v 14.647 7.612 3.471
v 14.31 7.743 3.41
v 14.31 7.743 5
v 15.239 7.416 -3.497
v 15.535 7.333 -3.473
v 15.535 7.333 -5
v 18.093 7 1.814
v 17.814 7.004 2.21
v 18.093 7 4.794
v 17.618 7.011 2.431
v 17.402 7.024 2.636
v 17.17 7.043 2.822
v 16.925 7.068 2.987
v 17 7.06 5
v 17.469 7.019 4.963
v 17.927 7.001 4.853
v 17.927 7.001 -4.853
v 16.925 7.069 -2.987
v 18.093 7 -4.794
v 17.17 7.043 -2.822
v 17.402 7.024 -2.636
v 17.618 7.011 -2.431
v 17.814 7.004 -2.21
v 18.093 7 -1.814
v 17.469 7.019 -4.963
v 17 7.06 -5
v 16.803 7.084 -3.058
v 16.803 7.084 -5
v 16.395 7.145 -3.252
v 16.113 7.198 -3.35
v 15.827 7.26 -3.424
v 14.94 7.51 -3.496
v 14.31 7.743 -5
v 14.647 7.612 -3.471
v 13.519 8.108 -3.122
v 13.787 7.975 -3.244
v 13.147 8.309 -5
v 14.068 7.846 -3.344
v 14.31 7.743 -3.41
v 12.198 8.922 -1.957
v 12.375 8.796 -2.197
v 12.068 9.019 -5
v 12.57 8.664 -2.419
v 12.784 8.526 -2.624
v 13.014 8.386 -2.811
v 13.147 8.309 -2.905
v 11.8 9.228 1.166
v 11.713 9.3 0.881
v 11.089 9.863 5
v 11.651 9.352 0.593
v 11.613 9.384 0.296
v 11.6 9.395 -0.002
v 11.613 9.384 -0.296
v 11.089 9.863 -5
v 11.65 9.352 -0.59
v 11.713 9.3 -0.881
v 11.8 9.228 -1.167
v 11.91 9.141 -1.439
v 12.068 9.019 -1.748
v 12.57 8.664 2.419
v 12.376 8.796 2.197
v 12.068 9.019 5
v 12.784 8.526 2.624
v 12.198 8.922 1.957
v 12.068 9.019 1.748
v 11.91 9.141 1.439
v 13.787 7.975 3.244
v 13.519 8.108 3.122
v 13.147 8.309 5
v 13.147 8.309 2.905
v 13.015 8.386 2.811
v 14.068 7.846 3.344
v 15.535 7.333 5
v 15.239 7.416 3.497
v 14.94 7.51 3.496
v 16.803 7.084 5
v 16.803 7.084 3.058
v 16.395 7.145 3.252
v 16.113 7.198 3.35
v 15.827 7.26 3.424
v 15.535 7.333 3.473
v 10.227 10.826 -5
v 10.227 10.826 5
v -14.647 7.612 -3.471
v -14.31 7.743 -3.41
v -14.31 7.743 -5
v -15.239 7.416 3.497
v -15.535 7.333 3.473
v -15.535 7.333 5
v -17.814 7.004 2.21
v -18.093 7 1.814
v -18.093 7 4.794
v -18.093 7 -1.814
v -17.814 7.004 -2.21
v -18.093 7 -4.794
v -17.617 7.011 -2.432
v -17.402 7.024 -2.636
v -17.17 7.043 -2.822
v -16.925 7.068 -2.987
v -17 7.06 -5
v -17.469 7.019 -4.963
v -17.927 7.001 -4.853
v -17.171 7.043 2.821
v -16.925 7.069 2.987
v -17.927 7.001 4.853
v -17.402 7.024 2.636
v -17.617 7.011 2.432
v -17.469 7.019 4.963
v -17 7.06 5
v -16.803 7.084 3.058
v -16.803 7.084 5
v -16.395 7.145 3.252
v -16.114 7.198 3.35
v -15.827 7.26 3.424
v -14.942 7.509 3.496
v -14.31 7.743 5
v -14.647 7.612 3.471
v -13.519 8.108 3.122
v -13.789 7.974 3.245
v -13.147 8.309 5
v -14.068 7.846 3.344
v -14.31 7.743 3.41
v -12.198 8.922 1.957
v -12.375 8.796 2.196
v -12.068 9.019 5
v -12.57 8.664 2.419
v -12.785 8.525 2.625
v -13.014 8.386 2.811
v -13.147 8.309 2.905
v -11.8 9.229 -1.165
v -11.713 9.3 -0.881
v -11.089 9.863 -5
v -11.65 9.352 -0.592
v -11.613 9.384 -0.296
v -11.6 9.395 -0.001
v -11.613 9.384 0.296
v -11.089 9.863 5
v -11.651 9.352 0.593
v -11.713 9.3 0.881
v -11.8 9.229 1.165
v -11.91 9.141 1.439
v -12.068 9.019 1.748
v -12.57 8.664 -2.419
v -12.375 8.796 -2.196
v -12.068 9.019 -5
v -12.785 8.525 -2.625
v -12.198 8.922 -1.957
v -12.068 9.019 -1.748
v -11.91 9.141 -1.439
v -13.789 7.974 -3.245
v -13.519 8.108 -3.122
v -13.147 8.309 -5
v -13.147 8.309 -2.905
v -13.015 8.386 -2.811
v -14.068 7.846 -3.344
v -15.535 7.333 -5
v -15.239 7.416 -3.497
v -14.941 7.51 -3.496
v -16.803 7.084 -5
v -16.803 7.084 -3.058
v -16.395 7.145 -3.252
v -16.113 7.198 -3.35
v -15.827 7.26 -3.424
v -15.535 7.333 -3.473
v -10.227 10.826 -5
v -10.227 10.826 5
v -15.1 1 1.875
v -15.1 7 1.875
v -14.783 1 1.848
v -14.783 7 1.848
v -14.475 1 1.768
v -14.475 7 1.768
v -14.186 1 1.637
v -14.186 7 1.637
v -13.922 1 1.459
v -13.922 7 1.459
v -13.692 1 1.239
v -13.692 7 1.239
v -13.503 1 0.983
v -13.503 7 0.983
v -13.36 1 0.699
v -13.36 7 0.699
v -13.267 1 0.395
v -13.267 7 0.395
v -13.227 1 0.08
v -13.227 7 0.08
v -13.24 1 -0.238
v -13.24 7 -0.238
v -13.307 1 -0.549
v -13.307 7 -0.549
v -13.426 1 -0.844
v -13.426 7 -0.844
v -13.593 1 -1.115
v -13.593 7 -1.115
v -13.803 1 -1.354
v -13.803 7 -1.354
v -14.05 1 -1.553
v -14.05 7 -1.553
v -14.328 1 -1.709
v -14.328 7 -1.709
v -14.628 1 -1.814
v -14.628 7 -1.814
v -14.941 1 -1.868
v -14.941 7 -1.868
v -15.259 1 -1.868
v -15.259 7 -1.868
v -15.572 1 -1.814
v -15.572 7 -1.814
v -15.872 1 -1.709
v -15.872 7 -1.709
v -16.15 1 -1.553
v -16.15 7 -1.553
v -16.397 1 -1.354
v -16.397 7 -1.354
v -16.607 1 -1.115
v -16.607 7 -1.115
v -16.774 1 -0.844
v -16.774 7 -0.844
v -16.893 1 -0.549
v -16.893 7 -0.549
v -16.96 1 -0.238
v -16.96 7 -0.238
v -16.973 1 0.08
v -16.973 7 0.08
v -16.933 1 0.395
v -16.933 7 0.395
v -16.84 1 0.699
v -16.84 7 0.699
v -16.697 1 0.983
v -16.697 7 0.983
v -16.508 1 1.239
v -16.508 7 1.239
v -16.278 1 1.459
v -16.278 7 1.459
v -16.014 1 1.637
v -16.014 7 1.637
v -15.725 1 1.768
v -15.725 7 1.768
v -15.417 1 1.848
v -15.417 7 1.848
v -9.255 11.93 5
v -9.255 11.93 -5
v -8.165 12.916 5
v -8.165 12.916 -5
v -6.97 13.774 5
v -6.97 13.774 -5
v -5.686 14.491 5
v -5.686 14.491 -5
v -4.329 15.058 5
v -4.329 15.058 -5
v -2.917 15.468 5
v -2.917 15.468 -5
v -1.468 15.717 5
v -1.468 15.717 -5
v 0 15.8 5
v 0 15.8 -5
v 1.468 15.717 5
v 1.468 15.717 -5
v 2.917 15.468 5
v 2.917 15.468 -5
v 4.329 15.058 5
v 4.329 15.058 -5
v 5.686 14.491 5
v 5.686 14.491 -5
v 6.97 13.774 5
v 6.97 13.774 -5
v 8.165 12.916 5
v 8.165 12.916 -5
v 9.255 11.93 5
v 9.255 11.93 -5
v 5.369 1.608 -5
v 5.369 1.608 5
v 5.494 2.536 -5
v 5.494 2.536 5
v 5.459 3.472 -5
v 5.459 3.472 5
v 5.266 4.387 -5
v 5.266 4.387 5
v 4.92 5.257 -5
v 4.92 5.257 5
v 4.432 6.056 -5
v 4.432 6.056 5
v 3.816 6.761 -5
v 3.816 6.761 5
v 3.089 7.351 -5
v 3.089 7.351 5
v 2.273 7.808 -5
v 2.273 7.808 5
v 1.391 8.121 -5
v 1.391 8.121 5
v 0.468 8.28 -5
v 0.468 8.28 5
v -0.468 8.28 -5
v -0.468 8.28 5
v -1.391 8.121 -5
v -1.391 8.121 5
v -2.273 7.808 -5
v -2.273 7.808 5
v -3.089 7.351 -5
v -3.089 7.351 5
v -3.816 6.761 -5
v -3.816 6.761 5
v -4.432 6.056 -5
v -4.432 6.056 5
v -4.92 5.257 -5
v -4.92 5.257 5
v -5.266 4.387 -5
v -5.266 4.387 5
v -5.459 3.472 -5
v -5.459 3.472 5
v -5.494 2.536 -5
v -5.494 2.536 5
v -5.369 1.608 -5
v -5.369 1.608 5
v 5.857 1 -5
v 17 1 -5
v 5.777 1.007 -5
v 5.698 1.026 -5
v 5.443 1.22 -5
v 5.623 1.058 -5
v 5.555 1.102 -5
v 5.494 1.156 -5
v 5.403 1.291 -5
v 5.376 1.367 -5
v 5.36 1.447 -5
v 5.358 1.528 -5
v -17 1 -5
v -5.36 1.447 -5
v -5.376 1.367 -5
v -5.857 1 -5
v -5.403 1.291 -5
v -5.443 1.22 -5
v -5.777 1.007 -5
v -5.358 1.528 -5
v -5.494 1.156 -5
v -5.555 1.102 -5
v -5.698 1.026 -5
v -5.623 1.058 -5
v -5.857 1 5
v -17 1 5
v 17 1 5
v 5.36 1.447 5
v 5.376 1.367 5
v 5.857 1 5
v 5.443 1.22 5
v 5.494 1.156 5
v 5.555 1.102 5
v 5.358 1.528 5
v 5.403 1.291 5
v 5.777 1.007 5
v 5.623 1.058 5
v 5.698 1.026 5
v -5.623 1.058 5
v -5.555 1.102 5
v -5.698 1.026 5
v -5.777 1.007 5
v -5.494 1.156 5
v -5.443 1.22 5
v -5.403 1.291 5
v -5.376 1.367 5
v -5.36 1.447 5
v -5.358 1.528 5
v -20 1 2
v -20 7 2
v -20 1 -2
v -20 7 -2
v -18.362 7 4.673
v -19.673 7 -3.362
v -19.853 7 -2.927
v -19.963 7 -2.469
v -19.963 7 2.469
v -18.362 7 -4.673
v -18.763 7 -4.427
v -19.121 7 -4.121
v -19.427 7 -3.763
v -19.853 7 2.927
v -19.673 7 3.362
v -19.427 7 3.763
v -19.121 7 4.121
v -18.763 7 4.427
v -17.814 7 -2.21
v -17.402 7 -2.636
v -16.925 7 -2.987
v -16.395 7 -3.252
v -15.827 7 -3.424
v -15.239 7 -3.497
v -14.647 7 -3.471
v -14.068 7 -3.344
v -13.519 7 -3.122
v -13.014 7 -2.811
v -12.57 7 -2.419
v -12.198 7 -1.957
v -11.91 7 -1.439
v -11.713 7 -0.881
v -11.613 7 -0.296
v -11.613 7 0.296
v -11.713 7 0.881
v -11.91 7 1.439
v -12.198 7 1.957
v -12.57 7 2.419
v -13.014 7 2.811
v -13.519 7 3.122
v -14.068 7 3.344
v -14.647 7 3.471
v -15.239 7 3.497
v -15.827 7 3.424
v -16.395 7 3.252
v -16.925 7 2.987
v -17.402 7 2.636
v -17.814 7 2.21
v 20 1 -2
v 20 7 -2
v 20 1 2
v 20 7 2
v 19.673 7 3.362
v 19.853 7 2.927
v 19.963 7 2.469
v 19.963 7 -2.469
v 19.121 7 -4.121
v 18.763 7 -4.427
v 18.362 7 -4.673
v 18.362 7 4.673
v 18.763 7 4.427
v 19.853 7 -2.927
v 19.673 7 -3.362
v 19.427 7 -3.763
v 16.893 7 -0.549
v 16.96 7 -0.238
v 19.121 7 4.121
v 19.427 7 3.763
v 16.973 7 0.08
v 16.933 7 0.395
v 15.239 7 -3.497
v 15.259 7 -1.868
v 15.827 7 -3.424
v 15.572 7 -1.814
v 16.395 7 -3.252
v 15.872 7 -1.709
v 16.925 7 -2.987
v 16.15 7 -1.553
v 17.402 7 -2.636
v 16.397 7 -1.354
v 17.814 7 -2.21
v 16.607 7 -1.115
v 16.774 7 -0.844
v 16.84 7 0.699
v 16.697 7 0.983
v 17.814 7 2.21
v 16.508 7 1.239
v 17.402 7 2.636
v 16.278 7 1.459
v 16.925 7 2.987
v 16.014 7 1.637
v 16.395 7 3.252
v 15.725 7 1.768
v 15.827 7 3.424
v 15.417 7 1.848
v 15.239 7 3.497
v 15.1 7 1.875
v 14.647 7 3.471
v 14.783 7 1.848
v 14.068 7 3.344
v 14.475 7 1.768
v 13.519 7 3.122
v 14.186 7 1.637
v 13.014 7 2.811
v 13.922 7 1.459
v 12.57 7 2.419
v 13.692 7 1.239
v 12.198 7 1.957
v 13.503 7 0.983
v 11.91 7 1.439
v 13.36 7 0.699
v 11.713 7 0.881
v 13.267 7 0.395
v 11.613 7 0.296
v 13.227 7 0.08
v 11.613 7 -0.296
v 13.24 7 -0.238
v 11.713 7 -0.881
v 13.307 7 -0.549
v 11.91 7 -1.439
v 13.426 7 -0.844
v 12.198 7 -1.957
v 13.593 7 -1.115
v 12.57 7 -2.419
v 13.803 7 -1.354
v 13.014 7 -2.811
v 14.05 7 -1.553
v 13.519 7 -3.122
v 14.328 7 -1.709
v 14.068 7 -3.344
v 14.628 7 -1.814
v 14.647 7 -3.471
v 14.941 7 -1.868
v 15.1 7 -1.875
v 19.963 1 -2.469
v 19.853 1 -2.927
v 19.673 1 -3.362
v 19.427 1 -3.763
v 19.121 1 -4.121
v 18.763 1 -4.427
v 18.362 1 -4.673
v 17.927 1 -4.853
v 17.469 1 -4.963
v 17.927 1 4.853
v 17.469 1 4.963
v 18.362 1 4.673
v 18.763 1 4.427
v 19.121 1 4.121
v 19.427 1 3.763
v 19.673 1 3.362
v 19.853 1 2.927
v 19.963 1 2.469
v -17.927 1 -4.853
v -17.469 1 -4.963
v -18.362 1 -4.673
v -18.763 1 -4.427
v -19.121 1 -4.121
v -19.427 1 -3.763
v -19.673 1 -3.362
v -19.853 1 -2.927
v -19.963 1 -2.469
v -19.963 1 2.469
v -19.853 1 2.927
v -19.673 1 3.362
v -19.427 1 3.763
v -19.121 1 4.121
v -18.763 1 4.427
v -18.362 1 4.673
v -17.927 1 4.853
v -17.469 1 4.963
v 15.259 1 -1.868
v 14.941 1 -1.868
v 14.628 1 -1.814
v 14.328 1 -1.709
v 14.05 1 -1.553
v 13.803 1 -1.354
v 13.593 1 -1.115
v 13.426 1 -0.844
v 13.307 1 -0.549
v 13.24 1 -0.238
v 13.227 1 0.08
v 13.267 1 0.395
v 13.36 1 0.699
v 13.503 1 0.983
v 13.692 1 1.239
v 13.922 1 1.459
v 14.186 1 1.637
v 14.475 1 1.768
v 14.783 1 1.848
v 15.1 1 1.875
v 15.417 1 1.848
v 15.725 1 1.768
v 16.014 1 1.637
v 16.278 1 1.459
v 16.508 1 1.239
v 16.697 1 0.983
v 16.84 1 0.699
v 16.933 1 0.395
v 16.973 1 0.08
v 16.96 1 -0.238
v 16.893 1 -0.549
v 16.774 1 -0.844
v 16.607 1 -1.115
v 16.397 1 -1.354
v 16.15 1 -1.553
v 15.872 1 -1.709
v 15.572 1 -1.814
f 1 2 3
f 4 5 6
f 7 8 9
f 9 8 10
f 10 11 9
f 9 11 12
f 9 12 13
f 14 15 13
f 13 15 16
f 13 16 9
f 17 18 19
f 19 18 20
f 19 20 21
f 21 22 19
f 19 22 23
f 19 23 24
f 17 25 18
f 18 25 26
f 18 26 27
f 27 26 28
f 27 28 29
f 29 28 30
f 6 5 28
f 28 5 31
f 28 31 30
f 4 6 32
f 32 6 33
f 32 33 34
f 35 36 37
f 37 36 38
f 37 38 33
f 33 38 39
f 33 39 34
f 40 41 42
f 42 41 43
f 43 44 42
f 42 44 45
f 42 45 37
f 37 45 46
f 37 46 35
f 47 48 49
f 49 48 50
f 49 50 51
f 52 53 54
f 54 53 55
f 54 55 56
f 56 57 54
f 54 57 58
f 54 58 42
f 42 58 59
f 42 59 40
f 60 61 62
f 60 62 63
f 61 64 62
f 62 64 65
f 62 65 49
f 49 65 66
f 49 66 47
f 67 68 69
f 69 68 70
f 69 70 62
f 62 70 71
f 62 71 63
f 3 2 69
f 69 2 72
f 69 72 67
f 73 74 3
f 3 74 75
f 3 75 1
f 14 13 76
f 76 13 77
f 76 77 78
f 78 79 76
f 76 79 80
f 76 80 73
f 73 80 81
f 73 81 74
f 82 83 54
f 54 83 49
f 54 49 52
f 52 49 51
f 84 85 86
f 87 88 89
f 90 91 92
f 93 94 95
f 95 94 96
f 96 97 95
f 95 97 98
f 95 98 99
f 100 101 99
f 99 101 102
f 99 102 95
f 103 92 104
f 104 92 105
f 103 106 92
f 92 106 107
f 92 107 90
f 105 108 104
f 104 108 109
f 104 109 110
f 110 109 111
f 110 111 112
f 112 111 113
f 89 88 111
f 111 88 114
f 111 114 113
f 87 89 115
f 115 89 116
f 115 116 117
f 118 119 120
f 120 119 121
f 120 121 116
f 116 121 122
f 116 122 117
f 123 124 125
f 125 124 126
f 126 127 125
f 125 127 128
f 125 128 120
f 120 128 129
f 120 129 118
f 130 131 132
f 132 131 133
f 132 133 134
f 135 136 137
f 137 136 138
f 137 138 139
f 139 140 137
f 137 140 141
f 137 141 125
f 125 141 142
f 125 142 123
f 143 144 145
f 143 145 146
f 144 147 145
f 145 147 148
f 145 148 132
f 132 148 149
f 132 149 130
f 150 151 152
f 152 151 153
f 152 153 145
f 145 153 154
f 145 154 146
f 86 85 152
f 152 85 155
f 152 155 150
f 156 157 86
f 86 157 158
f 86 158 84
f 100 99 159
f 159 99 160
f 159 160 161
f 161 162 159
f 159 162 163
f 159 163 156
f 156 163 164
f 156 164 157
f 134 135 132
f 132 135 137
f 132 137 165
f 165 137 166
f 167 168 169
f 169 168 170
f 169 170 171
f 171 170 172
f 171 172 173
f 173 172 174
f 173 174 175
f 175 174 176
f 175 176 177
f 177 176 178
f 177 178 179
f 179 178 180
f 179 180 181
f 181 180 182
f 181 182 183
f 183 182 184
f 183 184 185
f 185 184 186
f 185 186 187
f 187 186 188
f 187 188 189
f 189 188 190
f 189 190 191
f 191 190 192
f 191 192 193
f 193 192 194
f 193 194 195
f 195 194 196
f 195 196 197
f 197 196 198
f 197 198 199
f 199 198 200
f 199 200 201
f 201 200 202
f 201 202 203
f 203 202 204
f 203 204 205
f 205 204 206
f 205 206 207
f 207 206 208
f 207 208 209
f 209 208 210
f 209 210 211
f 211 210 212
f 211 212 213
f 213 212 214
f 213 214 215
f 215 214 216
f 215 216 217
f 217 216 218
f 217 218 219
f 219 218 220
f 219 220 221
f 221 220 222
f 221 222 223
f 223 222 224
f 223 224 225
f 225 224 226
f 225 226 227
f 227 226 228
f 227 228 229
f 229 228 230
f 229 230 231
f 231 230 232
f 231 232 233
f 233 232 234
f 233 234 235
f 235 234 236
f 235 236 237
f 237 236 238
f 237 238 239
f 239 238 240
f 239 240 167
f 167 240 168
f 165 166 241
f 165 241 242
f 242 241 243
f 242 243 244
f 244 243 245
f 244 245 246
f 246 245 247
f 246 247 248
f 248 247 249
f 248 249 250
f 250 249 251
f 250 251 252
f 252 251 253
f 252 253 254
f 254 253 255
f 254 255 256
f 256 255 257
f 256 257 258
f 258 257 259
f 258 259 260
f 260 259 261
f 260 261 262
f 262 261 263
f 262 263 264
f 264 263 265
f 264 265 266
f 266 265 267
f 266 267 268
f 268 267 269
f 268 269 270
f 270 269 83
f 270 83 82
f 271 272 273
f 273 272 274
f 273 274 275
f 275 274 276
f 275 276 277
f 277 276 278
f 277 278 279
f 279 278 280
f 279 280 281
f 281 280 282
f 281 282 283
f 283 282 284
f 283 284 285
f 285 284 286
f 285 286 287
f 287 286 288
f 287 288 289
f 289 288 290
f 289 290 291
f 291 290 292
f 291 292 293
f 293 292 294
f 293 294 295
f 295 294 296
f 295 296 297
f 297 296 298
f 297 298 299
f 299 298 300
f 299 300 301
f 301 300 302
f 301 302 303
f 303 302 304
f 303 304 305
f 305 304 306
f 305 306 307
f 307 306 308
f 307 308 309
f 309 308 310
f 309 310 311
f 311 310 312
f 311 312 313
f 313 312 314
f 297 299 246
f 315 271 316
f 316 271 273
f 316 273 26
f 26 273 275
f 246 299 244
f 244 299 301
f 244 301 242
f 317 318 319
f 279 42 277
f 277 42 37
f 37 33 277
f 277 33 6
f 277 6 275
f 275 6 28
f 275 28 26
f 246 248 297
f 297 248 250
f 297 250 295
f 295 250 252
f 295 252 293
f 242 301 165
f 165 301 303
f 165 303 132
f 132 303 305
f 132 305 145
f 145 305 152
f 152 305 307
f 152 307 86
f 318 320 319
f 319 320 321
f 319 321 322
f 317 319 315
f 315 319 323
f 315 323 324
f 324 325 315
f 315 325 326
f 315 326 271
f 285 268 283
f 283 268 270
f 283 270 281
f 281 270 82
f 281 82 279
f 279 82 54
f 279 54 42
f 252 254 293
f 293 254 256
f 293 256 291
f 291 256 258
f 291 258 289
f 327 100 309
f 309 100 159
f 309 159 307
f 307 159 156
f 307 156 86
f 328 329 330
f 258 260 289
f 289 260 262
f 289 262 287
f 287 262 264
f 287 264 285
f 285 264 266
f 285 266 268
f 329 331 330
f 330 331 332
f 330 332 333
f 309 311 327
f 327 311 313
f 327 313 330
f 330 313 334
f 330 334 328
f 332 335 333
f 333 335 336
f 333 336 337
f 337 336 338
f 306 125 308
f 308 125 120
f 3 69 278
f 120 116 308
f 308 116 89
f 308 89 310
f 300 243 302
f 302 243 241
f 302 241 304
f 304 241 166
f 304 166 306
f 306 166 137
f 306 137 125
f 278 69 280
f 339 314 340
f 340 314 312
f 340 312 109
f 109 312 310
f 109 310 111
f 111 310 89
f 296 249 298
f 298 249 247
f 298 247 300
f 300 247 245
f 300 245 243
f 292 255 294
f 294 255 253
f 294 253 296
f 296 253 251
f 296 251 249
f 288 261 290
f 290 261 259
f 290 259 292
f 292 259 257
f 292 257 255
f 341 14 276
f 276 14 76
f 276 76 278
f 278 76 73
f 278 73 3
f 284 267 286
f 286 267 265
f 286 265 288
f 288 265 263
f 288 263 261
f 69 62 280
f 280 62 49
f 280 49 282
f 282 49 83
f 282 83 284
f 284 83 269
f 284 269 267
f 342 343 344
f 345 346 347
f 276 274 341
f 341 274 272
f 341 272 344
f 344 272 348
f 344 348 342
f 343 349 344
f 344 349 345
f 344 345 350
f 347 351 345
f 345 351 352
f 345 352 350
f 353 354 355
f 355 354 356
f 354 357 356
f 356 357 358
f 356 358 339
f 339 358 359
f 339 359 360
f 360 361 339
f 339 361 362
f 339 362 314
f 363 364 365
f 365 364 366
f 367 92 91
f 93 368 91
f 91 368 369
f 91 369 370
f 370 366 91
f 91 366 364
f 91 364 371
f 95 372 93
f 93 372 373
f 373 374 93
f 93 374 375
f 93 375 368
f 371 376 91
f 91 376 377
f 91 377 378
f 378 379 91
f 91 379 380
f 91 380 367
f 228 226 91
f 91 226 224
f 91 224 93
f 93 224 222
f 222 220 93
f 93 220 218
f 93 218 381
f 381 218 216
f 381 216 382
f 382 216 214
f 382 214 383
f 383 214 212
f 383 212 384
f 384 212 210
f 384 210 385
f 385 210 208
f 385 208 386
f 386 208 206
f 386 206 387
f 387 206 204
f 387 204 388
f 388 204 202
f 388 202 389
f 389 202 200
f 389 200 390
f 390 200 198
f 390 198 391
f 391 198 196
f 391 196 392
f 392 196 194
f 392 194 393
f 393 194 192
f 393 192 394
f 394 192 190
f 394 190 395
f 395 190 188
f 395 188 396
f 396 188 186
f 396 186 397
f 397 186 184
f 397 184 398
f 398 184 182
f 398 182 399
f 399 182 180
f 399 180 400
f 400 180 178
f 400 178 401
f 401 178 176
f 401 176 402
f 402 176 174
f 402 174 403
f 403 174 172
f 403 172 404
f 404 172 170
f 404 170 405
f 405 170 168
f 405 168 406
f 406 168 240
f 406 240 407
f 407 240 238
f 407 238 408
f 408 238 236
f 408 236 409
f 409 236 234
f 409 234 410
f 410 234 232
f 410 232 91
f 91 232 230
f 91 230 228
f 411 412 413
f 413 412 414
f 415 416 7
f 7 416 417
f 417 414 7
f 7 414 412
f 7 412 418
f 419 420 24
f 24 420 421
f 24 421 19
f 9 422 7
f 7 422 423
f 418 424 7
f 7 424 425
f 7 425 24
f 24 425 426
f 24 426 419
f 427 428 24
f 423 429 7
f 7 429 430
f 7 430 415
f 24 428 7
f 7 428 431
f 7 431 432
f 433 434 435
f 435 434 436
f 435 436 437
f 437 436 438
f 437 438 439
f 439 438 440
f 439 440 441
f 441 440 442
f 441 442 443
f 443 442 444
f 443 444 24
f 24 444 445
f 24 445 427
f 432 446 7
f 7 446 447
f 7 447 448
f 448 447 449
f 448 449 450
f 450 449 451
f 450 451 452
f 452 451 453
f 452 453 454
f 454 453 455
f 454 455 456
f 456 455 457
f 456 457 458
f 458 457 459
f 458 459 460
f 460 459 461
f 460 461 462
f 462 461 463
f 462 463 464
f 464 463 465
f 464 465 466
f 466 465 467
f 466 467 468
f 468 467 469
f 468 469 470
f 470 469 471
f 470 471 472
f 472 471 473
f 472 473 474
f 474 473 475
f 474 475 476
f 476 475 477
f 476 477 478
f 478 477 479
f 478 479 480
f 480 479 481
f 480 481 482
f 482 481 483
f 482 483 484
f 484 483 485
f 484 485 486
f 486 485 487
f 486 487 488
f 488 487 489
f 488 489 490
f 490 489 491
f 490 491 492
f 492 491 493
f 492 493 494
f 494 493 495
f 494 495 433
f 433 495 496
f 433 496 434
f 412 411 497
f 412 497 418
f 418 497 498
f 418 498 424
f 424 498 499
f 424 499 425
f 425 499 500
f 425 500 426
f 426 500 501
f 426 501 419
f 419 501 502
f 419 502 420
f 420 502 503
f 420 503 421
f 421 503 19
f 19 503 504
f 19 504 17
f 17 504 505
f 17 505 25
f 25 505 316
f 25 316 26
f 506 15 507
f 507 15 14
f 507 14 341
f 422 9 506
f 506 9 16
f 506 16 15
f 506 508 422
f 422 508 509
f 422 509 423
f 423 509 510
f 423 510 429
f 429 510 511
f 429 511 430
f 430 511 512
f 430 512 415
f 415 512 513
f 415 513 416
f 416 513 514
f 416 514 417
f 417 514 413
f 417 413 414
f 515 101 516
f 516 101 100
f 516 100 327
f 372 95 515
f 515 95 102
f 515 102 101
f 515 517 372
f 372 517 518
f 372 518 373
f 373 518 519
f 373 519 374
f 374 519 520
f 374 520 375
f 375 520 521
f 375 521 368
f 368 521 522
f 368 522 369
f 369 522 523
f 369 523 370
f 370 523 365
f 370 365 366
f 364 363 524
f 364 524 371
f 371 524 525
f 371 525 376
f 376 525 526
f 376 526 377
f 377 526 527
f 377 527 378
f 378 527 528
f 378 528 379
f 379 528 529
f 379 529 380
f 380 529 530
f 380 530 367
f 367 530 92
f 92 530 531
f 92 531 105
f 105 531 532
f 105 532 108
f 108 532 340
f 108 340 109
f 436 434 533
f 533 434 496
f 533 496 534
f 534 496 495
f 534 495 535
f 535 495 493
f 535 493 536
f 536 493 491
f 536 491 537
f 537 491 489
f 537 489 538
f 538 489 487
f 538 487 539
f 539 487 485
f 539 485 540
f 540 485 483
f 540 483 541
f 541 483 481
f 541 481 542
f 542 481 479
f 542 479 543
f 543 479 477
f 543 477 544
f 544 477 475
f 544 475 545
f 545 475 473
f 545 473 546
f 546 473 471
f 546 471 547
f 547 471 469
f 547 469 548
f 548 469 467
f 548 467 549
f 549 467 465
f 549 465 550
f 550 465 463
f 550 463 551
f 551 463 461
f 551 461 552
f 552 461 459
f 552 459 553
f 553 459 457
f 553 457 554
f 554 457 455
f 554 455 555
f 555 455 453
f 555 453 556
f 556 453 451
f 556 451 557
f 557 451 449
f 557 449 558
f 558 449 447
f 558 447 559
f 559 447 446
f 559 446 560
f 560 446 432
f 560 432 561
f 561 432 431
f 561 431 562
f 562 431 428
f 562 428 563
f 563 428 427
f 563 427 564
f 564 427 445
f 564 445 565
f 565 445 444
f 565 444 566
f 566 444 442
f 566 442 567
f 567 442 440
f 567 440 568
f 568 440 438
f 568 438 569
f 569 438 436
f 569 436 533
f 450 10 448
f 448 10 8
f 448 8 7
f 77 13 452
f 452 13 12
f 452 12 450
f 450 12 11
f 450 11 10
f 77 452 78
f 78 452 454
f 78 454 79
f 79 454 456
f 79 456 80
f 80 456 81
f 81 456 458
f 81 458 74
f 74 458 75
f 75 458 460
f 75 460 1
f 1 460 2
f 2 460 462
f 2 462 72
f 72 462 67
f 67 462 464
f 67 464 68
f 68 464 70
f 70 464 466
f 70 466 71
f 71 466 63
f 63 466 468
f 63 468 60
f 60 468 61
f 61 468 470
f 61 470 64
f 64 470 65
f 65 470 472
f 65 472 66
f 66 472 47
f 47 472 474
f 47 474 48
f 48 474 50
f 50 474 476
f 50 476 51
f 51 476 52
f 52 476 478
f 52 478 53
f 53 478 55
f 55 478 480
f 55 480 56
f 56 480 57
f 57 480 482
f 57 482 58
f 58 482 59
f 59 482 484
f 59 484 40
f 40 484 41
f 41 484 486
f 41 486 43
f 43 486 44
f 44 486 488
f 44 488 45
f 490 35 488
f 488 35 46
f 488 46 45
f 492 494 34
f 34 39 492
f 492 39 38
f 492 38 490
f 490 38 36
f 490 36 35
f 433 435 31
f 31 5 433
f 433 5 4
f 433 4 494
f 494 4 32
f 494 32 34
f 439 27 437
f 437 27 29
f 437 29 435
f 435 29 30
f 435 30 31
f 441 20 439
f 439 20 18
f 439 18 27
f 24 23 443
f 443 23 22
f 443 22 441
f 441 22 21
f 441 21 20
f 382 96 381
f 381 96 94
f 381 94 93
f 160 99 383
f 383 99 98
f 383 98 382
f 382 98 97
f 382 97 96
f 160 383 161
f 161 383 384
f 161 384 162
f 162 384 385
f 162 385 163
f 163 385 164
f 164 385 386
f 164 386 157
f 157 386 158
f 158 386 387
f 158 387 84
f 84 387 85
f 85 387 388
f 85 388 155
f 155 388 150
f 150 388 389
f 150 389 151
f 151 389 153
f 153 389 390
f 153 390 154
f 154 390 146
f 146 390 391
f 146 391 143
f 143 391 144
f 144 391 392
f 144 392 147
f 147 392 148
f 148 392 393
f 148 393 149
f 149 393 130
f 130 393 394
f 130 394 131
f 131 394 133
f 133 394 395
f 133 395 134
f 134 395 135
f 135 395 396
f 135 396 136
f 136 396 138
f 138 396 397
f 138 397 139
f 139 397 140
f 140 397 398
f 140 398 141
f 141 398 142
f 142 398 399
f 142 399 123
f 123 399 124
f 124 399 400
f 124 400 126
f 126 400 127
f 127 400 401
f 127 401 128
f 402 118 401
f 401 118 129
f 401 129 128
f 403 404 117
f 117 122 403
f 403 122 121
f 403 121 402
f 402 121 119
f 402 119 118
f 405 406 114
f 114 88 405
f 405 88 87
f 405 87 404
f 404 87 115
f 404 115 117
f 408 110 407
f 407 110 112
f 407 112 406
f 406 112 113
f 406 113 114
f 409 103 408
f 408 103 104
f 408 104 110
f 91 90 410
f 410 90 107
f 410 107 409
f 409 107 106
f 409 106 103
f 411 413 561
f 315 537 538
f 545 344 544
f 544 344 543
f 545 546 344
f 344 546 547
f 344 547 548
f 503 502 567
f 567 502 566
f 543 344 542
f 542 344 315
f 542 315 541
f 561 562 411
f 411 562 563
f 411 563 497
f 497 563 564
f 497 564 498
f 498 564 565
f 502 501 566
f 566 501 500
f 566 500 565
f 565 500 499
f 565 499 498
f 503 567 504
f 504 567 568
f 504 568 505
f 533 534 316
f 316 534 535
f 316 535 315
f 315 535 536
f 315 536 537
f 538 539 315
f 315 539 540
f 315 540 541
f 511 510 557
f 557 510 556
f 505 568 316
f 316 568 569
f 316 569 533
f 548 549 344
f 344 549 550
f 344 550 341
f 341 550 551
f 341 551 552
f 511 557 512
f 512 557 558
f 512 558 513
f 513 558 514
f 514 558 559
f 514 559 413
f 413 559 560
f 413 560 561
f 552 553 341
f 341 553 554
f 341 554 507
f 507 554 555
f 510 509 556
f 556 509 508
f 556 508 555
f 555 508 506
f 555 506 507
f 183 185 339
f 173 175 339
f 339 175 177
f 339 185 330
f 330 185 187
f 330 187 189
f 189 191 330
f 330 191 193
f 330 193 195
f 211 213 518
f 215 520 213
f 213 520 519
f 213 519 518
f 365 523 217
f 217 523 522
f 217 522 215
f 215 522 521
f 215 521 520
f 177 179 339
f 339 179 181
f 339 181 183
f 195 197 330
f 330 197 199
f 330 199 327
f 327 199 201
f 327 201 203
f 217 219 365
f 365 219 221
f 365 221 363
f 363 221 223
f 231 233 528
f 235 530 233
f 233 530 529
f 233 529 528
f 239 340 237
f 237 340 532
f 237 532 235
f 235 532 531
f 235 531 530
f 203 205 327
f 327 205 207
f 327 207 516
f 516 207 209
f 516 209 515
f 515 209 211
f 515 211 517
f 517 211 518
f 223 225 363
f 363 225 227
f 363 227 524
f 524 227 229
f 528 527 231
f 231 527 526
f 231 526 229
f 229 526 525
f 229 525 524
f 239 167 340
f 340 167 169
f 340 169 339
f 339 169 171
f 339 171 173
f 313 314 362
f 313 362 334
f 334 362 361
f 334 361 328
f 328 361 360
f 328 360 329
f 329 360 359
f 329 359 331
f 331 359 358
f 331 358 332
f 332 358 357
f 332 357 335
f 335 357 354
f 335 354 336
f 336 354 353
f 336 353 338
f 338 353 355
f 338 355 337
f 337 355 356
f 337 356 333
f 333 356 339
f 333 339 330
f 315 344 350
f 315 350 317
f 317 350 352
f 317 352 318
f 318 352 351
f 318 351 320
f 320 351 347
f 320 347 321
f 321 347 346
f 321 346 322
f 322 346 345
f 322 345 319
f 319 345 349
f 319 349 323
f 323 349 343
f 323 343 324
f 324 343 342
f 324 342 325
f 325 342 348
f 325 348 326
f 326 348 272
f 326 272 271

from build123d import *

# Parameters (mm, degrees)
BOSS_EXTRUDE1_START      = -1
SKETCH1_W                = 40
SKETCH1_H                = 10
BOSS_EXTRUDE1_DEPTH      = 5
BOSS_EXTRUDE2_DEPTH      = 5
BOSS_EXTRUDE2_DEPTH_BACK = 5
SKETCH3_W                = 10
SKETCH3_H                = 10
BOSS_EXTRUDE3_DEPTH      = 7
FILLET1_R                = 3
FILLET2_R                = 3
FILLET4_R                = 10
CUT_EXTRUDE1_DEPTH       = 26.973833083
CUT_EXTRUDE1_DEPTH_BACK  = 26.973833083
SKETCH4_R                = 1.875
CUT_EXTRUDE2_START       = 7
SKETCH5_R                = 3.5
CUT_EXTRUDE2_DEPTH       = 10
SKETCH9_W                = 47.094451366
SKETCH9_H                = 23.336565295
CUT_EXTRUDE5_DEPTH       = 1
FILLET5_R                = 0.5
SKETCH7_W                = 51.703075982
SKETCH7_H                = 23.04476915
CUT_EXTRUDE4_DEPTH       = 26.973833083


with BuildPart() as part:
    # Sketch1 → Boss-Extrude1 (new body)
    with BuildSketch(Plane(origin=(0, 0, 0), x_dir=(1, 0, 0), z_dir=(0, 1, 0)).offset(BOSS_EXTRUDE1_START)):
        Rectangle(SKETCH1_W, SKETCH1_H)
    extrude(amount=-BOSS_EXTRUDE1_DEPTH)

    # Fillet2
    fillet2_edges = [part.edges().sort_by_distance(p)[0] for p in [
        (-20, -3.5, 5),
        (-20, -3.5, -5),
        (20, -3.5, 5),
        (20, -3.5, -5),
    ]]
    fillet(fillet2_edges, radius=FILLET2_R)


with BuildPart() as body_2:
    # Sketch2 → Boss-Extrude2 (new, two sides: drawn at the far end of the back side and taken through both)
    with BuildSketch(Plane.XY.offset(-BOSS_EXTRUDE2_DEPTH_BACK)):
        with BuildLine():
            Line((-12.694880858, 0), (-4.733920151, 0))
            ThreePointArc((-4.733920151, 0), (0, 8.3), (4.733920151, 0))
            Line((4.733920151, 0), (12.694880858, 0))
            ThreePointArc((12.694880858, 0), (0, 15.8), (-12.694880858, 0))
        make_face()
    extrude(amount=BOSS_EXTRUDE2_DEPTH + BOSS_EXTRUDE2_DEPTH_BACK)

    # Sketch3 → Boss-Extrude3 (add)
    with BuildSketch(Plane(origin=(0, 0, 0), x_dir=(1, 0, 0), z_dir=(0, 1, 0))):
        with Locations((-15, 0)):
            Rectangle(SKETCH3_W, SKETCH3_H)
        with Locations((15, 0)):
            Rectangle(SKETCH3_W, SKETCH3_H)
    extrude(amount=BOSS_EXTRUDE3_DEPTH)

    # Fillet1
    fillet1_edges = [body_2.edges().sort_by_distance(p)[0] for p in [
        (20, 3.5, -5),
        (20, 3.5, 5),
        (-20, 3.5, -5),
        (-20, 3.5, 5),
    ]]
    fillet(fillet1_edges, radius=FILLET1_R)

    # Fillet4
    fillet4_edges = [body_2.edges().sort_by_distance(p)[0] for p in [
        (12.302845199, 7, 0),
        (-12.302845199, 7, 0),
    ]]
    fillet(fillet4_edges, radius=FILLET4_R)


with BuildPart() as cut_extrude1_tool:
    # Sketch4 → Cut-Extrude1 (new, two sides: drawn at the far end of the back side and taken through both)
    with BuildSketch(Plane(origin=(0, 0, 0), x_dir=(1, 0, 0), z_dir=(0, 1, 0)).offset(-CUT_EXTRUDE1_DEPTH_BACK)):
        with Locations((-15.1, 0)):
            Circle(SKETCH4_R)
        with Locations((15.1, 0)):
            Circle(SKETCH4_R)
    extrude(amount=CUT_EXTRUDE1_DEPTH + CUT_EXTRUDE1_DEPTH_BACK)


with BuildPart() as part_1:
    add(part.part)

    # Cut-Extrude1: cut by cut_extrude1_tool
    add(cut_extrude1_tool.part, mode=Mode.SUBTRACT)

    # Sketch7 → Cut-Extrude4 (cut, through all)
    with BuildSketch(Plane(origin=(0, 0, 0), x_dir=(1, 0, 0), z_dir=(0, 1, 0))):
        with Locations((-1.693322056, -1.721439234)):
            Rectangle(SKETCH7_W, SKETCH7_H)
    extrude(amount=-CUT_EXTRUDE4_DEPTH, mode=Mode.SUBTRACT)


with BuildPart() as body_2_1:
    add(body_2.part)

    # Cut-Extrude1: cut by cut_extrude1_tool
    add(cut_extrude1_tool.part, mode=Mode.SUBTRACT)

    # Sketch5 → Cut-Extrude2 (cut)
    with BuildSketch(Plane(origin=(0, 0, 0), x_dir=(1, 0, 0), z_dir=(0, 1, 0)).offset(CUT_EXTRUDE2_START)):
        with Locations((-15.1, 0)):
            Circle(SKETCH5_R)
        with Locations((15.1, 0)):
            Circle(SKETCH5_R)
    extrude(amount=CUT_EXTRUDE2_DEPTH, mode=Mode.SUBTRACT)

    # Sketch9 → Cut-Extrude5 (cut)
    with BuildSketch(Plane(origin=(0, 0, 0), x_dir=(1, 0, 0), z_dir=(0, 1, 0))):
        with Locations((2.081495267, 0.004136026)):
            Rectangle(SKETCH9_W, SKETCH9_H)
    extrude(amount=CUT_EXTRUDE5_DEPTH, mode=Mode.SUBTRACT)

    # Fillet5
    fillet5_edges = [body_2_1.edges().sort_by_distance(p)[0] for p in [
        (-5.197114584, 1, 0),
        (5.197114584, 1, 0),
    ]]
    fillet(fillet5_edges, radius=FILLET5_R)


solid = body_2_1.part
